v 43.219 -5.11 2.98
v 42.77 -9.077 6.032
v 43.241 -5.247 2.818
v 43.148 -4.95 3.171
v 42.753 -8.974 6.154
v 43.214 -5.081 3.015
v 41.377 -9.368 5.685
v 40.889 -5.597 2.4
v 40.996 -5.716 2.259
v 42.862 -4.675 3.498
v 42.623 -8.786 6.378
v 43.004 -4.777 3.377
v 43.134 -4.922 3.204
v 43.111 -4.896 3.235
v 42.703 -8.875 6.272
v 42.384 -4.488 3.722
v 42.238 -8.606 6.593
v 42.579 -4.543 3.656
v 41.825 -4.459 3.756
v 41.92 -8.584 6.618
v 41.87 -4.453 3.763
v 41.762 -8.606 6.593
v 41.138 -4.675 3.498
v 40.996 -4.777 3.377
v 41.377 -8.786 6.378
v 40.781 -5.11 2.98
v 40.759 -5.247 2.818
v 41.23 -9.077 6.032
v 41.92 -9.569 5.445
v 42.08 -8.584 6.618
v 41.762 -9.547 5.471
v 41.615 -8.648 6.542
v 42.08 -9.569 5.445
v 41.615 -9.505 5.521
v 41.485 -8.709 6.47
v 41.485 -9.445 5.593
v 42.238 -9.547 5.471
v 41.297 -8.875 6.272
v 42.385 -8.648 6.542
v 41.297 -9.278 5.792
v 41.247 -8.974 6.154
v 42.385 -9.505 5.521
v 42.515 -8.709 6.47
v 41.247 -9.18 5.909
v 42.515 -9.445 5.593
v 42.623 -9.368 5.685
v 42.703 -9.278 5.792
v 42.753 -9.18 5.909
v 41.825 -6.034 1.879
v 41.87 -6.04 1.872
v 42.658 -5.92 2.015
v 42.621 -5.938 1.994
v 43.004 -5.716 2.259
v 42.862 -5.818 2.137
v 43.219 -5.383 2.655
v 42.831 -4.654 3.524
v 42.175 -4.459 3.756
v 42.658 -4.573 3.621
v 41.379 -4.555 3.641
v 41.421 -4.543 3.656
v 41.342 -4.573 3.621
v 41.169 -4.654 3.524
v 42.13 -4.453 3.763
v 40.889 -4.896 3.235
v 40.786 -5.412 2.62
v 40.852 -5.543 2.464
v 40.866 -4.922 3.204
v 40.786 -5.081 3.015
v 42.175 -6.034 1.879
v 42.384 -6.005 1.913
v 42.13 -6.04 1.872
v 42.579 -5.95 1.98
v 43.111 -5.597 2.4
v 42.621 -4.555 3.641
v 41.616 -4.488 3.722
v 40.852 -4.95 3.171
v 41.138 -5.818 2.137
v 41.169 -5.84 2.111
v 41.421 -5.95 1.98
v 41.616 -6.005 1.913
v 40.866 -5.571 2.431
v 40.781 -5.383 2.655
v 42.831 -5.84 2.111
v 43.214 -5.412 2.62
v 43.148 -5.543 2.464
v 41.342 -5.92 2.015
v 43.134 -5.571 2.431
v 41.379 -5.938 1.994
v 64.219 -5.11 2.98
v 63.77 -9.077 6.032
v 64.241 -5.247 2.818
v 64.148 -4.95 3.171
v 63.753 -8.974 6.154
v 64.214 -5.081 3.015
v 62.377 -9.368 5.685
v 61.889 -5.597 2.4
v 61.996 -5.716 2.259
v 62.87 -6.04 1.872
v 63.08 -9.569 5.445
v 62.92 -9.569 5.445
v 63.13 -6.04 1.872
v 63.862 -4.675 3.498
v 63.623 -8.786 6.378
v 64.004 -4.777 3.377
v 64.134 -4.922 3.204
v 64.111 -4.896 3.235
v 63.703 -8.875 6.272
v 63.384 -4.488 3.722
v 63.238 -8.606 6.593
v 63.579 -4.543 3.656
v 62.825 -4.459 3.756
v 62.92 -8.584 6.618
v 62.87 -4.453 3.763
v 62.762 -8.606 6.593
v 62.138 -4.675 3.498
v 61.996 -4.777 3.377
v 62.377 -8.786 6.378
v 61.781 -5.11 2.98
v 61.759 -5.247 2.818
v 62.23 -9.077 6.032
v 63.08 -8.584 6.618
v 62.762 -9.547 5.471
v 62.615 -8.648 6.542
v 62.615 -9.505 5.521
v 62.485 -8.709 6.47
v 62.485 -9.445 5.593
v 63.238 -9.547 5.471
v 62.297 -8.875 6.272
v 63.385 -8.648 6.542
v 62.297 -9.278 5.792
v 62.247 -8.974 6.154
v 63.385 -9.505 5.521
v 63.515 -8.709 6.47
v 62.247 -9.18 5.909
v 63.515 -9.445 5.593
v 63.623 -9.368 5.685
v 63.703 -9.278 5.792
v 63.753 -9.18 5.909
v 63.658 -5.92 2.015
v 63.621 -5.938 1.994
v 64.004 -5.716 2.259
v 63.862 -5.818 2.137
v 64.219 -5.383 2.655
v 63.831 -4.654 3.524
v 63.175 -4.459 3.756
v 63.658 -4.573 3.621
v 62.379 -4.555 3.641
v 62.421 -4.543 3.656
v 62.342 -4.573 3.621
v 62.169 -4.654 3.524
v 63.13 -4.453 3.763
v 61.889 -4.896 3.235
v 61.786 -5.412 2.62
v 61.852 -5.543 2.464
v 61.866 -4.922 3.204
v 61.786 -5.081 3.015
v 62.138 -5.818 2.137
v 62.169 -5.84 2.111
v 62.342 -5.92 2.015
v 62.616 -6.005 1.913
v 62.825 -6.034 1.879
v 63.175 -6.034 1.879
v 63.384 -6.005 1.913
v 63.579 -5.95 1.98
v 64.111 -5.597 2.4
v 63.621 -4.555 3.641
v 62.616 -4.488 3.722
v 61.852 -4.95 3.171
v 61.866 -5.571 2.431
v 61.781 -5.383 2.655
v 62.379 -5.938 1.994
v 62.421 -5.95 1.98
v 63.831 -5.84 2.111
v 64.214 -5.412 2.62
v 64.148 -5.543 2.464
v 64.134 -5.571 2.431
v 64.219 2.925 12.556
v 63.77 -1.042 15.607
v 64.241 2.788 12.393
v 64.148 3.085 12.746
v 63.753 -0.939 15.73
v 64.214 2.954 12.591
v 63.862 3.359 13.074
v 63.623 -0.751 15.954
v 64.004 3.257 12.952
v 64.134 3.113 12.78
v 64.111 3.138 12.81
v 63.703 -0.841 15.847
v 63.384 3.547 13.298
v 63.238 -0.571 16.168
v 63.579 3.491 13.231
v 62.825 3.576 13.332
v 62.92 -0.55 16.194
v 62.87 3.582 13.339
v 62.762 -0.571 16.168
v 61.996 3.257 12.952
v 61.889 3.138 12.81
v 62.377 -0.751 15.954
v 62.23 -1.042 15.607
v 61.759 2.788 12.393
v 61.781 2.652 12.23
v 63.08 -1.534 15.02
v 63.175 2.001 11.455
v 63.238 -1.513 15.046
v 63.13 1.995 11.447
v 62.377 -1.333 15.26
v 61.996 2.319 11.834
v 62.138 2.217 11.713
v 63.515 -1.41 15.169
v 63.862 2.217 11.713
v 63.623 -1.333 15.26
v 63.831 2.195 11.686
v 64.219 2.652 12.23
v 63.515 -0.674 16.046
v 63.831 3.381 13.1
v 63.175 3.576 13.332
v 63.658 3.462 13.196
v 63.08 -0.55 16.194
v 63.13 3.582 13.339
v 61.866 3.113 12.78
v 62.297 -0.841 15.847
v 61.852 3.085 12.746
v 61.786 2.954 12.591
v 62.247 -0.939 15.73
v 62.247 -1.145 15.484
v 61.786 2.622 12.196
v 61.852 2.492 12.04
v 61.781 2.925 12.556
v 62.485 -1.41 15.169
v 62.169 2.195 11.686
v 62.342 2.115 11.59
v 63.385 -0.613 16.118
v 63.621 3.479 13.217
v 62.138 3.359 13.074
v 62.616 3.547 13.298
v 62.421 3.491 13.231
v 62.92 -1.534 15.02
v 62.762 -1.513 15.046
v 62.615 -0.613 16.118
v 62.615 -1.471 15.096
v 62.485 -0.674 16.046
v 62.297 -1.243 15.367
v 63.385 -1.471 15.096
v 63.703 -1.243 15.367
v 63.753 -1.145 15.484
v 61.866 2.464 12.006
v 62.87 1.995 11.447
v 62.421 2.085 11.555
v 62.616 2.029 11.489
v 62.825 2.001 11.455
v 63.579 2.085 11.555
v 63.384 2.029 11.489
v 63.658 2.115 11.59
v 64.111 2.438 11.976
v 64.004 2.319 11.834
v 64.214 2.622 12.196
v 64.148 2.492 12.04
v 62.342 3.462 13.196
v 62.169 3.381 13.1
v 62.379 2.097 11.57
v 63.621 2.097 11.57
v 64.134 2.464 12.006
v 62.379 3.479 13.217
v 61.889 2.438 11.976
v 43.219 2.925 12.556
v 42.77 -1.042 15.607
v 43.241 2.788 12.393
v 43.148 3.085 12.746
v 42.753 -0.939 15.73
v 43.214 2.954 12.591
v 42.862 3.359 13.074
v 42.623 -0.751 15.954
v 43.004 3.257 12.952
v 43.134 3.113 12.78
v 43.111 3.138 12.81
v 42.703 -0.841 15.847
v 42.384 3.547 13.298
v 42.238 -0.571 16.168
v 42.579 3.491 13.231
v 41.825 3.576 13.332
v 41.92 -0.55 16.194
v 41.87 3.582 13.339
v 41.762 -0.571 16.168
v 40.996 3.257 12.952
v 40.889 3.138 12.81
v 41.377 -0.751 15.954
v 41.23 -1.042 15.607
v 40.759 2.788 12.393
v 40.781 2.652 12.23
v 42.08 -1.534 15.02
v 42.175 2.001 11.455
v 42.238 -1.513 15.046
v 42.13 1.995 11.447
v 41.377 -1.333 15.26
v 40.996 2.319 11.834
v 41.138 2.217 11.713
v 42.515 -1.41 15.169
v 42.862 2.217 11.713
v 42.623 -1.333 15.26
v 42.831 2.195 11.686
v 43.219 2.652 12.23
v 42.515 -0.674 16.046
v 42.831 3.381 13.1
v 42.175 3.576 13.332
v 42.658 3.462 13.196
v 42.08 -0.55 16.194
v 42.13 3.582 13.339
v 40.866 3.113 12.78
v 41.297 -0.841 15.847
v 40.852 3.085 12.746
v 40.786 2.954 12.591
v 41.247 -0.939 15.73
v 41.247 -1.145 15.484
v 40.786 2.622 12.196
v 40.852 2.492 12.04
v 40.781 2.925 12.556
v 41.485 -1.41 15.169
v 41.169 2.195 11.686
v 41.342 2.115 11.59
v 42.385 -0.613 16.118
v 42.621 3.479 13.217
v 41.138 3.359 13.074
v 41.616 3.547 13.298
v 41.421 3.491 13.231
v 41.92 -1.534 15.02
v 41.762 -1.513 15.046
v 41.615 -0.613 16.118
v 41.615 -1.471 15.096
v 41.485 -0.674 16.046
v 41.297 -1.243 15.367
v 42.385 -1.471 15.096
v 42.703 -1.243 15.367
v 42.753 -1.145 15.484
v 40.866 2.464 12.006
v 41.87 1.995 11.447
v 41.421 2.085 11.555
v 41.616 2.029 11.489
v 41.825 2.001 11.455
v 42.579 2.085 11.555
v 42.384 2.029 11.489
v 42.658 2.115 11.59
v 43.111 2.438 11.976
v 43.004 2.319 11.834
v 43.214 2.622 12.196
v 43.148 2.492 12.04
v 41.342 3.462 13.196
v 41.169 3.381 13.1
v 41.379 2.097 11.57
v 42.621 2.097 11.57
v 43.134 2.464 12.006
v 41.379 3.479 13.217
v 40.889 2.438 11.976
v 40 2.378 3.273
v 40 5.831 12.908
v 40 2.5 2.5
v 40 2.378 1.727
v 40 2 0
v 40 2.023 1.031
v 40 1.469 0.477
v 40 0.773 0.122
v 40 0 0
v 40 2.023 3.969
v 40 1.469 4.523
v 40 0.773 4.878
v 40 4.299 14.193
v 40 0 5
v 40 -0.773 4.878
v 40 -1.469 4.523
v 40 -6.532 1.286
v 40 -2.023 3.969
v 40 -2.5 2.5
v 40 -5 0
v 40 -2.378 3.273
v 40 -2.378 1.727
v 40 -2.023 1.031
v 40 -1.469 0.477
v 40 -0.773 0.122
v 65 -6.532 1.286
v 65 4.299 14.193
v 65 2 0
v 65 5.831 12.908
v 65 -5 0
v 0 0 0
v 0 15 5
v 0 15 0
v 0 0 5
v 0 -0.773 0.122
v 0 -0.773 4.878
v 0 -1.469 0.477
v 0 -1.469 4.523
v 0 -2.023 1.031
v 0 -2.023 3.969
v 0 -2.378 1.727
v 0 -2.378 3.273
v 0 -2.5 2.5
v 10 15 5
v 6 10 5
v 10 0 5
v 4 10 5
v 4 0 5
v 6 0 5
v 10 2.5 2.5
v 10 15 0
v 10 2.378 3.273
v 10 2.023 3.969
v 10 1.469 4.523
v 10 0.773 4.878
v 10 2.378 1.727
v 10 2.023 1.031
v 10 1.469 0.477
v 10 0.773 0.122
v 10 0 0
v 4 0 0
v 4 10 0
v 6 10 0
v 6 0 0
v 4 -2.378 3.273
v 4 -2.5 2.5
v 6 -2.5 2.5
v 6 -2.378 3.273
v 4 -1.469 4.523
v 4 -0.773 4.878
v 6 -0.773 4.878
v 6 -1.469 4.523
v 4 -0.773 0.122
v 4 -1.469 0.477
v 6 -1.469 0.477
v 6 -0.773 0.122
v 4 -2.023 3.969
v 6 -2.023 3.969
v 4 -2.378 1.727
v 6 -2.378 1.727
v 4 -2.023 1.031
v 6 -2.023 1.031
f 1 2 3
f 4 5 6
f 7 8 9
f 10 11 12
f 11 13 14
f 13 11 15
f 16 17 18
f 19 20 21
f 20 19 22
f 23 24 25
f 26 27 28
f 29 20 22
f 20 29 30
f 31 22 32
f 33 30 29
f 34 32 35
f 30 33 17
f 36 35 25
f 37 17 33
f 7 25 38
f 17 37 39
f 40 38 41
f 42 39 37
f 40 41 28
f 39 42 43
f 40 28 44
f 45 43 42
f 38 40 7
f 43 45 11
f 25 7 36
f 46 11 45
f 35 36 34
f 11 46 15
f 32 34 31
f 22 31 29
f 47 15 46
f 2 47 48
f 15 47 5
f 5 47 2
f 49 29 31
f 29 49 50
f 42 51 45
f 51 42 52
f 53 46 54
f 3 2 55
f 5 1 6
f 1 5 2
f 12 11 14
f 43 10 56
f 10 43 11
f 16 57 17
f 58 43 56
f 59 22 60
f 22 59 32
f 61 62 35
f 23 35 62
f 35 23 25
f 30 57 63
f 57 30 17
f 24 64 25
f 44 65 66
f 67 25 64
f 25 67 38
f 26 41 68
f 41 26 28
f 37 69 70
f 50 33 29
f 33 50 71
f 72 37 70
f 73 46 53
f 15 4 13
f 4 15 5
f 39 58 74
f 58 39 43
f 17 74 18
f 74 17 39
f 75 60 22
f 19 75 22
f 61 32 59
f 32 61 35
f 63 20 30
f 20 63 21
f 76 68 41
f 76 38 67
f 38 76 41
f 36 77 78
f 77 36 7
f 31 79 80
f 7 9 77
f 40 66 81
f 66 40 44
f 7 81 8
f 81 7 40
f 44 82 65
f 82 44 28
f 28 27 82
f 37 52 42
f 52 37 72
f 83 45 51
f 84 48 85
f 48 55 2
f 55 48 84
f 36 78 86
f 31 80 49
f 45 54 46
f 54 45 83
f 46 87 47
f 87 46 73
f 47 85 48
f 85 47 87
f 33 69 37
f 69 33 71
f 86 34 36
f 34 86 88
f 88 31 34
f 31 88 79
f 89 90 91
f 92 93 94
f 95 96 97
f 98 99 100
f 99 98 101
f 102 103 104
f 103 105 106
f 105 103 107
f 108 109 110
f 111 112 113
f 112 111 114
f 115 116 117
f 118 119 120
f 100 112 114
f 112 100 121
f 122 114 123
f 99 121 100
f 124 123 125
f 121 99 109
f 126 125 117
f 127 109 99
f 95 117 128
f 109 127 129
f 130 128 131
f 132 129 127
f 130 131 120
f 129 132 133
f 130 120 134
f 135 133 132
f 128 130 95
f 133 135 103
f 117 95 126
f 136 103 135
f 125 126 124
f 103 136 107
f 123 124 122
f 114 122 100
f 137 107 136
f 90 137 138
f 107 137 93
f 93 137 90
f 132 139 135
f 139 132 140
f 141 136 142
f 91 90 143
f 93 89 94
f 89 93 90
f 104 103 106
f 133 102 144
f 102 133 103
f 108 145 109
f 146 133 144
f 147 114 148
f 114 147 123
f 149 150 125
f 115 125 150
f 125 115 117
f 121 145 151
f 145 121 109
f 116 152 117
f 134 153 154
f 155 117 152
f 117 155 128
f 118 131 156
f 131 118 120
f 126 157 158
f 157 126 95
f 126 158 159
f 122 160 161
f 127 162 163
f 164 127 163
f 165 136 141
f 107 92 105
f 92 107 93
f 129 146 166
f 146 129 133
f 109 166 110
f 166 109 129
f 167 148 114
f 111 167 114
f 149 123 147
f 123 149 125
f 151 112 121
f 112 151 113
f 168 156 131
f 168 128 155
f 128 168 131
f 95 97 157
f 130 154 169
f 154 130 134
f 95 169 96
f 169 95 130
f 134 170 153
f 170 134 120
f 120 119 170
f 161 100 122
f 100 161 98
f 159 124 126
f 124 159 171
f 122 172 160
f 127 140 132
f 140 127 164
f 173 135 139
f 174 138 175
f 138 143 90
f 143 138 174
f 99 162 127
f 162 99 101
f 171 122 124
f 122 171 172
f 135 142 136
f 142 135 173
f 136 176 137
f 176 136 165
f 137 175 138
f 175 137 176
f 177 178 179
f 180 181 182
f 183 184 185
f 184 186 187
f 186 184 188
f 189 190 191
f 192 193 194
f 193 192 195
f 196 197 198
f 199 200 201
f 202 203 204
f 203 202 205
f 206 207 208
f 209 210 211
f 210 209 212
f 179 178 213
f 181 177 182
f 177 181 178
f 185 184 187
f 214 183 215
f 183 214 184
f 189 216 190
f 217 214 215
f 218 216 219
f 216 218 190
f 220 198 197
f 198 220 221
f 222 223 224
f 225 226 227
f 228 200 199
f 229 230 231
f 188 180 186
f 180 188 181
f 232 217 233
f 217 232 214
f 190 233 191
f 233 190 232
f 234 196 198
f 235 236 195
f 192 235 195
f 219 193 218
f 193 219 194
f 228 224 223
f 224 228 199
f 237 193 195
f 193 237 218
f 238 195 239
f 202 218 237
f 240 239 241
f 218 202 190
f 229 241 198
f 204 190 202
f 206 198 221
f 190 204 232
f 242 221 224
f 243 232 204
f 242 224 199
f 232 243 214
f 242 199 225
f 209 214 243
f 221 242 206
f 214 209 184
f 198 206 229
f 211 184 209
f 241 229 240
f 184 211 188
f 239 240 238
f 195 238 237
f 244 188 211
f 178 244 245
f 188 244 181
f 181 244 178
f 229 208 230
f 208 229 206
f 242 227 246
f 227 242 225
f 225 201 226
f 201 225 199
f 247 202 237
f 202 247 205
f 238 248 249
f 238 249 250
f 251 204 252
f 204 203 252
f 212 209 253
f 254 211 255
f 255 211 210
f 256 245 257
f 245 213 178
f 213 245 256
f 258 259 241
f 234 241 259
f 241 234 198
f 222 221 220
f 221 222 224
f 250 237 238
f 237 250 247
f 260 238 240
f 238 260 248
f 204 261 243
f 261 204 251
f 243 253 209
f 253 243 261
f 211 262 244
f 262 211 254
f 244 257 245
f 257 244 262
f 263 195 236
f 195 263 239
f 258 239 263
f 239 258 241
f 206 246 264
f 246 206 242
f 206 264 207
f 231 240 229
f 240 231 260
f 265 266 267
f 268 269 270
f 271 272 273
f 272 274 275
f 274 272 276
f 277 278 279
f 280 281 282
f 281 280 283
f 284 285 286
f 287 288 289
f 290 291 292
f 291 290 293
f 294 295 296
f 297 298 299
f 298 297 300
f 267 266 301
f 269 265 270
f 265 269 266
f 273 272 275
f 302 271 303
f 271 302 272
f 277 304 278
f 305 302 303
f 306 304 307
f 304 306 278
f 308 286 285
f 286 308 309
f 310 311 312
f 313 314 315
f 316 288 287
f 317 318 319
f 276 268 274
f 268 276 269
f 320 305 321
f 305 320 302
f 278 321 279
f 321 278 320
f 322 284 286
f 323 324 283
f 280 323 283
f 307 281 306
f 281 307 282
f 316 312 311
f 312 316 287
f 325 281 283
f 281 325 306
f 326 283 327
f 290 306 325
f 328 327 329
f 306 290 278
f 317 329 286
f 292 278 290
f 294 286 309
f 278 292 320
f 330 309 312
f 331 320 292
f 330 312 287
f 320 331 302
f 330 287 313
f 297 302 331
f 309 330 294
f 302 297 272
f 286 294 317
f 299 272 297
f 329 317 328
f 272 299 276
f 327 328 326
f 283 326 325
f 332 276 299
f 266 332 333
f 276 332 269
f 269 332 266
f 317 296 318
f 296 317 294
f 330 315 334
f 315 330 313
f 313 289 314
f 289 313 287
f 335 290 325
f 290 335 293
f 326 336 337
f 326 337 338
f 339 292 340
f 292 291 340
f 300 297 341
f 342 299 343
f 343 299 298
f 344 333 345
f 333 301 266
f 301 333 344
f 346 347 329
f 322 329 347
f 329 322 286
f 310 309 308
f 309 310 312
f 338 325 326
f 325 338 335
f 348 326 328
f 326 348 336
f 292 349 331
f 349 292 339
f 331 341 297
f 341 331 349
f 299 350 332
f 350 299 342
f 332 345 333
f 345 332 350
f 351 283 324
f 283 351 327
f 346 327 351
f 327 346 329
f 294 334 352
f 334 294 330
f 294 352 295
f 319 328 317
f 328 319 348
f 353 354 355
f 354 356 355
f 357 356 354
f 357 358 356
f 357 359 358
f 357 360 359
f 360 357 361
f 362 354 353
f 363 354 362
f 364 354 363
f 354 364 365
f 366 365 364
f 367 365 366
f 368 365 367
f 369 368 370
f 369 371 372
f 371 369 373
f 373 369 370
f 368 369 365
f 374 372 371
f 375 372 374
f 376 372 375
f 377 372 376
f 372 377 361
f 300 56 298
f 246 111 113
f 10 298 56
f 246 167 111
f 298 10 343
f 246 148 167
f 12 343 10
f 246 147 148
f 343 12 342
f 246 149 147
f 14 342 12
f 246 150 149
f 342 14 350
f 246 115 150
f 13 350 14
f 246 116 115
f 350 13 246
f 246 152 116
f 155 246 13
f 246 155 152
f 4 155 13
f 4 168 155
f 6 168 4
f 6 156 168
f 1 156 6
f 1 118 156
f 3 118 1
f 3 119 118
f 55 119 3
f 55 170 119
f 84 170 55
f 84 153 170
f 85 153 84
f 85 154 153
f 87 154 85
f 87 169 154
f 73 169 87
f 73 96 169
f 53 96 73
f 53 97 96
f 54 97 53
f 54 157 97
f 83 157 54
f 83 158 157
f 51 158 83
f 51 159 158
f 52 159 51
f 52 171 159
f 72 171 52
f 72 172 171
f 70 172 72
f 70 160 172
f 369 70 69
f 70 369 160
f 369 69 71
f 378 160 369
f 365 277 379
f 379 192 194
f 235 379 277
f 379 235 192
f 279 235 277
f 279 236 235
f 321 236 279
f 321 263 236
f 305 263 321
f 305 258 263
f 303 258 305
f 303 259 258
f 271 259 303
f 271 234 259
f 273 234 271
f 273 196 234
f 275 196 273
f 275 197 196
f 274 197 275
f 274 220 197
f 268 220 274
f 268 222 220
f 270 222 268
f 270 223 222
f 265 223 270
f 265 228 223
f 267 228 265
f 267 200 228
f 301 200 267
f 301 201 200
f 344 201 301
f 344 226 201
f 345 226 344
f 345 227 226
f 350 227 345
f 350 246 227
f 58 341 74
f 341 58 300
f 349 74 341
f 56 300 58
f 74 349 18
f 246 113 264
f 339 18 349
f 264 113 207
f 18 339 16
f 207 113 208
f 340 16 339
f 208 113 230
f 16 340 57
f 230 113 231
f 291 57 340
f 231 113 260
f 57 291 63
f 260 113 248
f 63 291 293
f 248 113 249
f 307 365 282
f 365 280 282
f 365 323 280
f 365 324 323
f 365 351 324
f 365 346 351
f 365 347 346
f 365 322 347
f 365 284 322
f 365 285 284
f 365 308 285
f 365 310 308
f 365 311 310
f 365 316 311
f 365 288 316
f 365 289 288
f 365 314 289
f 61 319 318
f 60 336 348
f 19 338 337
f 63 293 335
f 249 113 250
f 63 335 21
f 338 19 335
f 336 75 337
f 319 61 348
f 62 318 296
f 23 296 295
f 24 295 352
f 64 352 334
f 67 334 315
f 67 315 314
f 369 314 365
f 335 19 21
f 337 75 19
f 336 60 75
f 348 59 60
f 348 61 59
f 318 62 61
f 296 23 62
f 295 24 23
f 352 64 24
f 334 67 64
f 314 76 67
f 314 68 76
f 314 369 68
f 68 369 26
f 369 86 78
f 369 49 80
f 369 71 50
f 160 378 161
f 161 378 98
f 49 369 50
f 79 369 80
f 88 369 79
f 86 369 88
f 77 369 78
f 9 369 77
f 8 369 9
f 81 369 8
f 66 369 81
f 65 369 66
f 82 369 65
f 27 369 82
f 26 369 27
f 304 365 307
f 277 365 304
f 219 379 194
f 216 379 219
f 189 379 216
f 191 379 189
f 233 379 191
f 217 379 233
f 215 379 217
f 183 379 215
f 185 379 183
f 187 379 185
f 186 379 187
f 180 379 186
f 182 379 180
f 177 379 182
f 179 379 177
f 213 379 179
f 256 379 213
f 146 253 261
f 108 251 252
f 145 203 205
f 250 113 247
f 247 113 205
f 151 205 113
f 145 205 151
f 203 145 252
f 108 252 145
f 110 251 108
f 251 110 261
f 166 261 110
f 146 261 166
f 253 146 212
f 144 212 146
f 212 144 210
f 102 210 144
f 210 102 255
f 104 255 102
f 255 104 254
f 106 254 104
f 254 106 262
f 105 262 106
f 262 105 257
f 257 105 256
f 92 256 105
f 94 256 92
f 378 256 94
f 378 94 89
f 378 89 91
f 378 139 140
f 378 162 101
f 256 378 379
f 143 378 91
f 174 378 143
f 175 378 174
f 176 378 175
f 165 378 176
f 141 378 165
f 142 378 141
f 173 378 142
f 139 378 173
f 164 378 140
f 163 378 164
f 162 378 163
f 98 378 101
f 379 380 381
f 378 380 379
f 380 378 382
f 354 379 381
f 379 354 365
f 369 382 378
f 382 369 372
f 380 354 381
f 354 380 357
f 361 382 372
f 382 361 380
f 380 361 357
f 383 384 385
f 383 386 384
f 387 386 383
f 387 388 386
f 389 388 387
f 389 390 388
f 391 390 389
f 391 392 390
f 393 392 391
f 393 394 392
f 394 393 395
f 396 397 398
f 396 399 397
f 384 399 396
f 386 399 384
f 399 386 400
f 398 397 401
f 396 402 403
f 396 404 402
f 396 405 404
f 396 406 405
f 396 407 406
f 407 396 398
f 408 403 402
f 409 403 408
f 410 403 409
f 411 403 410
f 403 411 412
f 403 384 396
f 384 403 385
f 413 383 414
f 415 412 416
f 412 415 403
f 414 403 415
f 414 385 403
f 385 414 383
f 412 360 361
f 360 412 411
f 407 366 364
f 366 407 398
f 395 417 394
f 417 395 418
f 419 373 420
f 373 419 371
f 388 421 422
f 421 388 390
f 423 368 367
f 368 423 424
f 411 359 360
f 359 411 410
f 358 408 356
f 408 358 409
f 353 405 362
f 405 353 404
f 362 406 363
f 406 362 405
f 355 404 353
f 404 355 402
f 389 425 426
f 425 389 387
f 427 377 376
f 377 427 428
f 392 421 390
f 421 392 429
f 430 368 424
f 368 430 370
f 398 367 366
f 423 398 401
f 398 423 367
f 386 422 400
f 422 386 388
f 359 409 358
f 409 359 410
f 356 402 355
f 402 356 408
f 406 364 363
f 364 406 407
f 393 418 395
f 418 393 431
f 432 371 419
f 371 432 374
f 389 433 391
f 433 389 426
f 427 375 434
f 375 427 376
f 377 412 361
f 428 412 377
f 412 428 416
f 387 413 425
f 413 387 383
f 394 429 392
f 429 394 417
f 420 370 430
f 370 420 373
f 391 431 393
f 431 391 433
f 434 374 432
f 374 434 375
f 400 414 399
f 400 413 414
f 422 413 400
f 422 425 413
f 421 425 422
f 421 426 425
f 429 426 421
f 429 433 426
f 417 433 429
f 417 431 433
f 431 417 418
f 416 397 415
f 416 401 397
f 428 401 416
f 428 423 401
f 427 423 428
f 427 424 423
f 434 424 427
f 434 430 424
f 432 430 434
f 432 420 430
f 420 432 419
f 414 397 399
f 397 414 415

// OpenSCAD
$fn=20;

/*
  Wanhao Duplicator i3 or Cocoon Create Plus Raspberry Pi Camera v2.1 mount (OpenSCAD)
  Author: Brian Khuu (2019)
  
  I use this in conjuction with sticking "Wanhao i3 Clip on Raspberry Pi Octoprint Case" by suzujoji  https://www.thingiverse.com/thing:1934900/files to my printer.
  
  This is a pressfit design. No support required. Just print and push the camera PCB to the mounting holes, then push the clip to the hole on the top of the Cocoon Create printer.

*/

/* [Camera]  */

// Camera Tilt Angle
picam_tilt_angle = 50;

// Offset Length
picam_mount_offset = 40;

module rpi_camera_model() {
  // ==============================================
  // Model of Raspberry Pi Camera v2.1
  // J.Beale 14-May-2016
  // ==============================================
  
  xs = 25.0;  // width of PCB
  ys = 23.85;  // height of PCB
  zs = 0.95;  // thickness of bare PCB, not including soldermask
  smt = 0.05;  // soldermask thickness (on each side)

  ID1 = 2.20; // ID of mounting through-holes
  OD1 = 4.7;  // silkscreen clearance around hole

  mhxc = 21.0;  // X center-to-center separation of mounting holes
  mhyc = 12.5; // Y center-to-center separation of mtng. holes
  mhox = 2.0;  // X mounting hole corner offset
  mhoy = 2.0;  // Y mounting hole corner offset
  hh = zs*2; // depth/height of mounting hole (subtractive cylinder)

  smx = 8.45;  // camera sensor module, base part
  smy = 8.45;
  smz = 2.3;
  smbod = 7.25;  // OD of lens holder barrel
  smbz = 1.7; // z-height of lens holder barrel
  smcod = 5.6;  // OD of lens cell 
  smcz = 0.6;  // protrusion of cell above holder barrel
  smcid = 1.55;  // optical aperture: opening for lens

  smfx = 8.9; // flex connector width
  smfy = 4.5; // flex connector 
  smfz = 1.52; // flex connector
  smfox = 9.45; // flex edge X offset
  smfoy = 2.6; // flex edge Y offset
  smfcx = 7.2; // flex cable width

  fcy = 5.8; // 15-way flex connector
  fcx = 21.0; // 15-way flex connector
  fcz = 3.77-1.15; // 15-way flex connector height  
  fcyoff = 0.3; // connector offset from PCB edge

  ffx = 16.05;  // 15-way flex cable width
  ffy = 30;  // length of flex cable stub
  ffz = 0.38;  // thickness of ff cable at stiffener
  ffoz = 1.1; // offset of ff cable below PCB

  KOx = 22.15; // keepout width- full
  KOxa = 15.1; // keepout width- inner block
  KOz = 1.35; // bottom side keepout z-height
  KOyo = 1.15; // keepout edge offset

  fn=40;  // facets on cylinder
  eps=0.03; // small number

  module pcb() {
  difference() {
   union() {
       translate([0,0,0]) color("green") 
          cube([xs,ys,smt]); // soldermask (bottom)
       translate([0,0,smt]) color("yellow") 
          cube([xs,ys,zs]); // natural PCB color
       translate([0,0,zs]) color("green") 
          cube([xs,ys,smt]); // soldermask (top)
   }
   translate([mhox,mhoy,zs-(smt+eps)]) {  // mask clearance: top
       cylinder(d=OD1,h=zs,$fn=fn);
       translate([mhxc,0,0]) cylinder(d=OD1,h=zs,$fn=fn);
       translate([mhxc,mhyc,0]) cylinder(d=OD1,h=zs,$fn=fn);
       translate([0,mhyc,0]) cylinder(d=OD1,h=zs,$fn=fn);
   }
   translate([mhox,mhoy,-eps]) {  // mask clearance: bottom
       cylinder(d=OD1,h=smt,$fn=fn);
       translate([mhxc,0,0]) cylinder(d=OD1,h=smt,$fn=fn);
       translate([mhxc,mhyc,0]) cylinder(d=OD1,h=smt,$fn=fn);
       translate([0,mhyc,0]) cylinder(d=OD1,h=smt,$fn=fn);
   }
   translate([mhox,mhoy,-zs*5]) {  // through holes
    cylinder(d=ID1,h=zs*10,$fn=fn);     
    translate([mhxc,0,0])  cylinder(d=ID1,h=zs*10,$fn=fn);
    translate([mhxc,mhyc,0])  cylinder(d=ID1,h=zs*10,$fn=fn);
    translate([0,mhyc,0])  cylinder(d=ID1,h=zs*10,$fn=fn);
    }
   }
  }
  
  module sensor() { // Camera sensor module
   color([.25,.25,.25]) translate([-smx/2, -smy/2, 0]) cube([smx,smy,smz]);
   color([.3,.3,.3]) cylinder(d=smbod, h=smbz + smz, $fn=fn);
   difference() {
    color([.2,.2,.2]) cylinder(d=smcod, h=smbz + smz + smcz, $fn=fn);
    translate([0,0,smcz]) cylinder(d=smcid, h=smbz + smz + smcz, $fn=fn);
   }
  }

  module flex() { // micro-flex attached to sensor
   color([0.2,0.20,0.18]) cube([smfx,smfy,smfz]); // u-flex connector top
   translate([0,smfy,0]) color([0.33,0.33,0.23]) cube([smfcx,smfy,smfz-.1]);
  }

  module fcon() {  // micro-flex connector to PCB
      color([0.6,0.20,0.18]) cube([fcx,fcy,fcz]);
  }

  module ff15() {  // 15-conductor flat flex cable
      color([.7,.7,.7]) cube([ffx,ffy,ffz]);
  }
  
  translate([xs/2 ,mhyc+mhoy,zs]) sensor();
  translate([smfox,smfoy,zs]) flex(); // micro-flex on sensor
  pcb();
}

module cam_holder(thickness, rotate, hull_base)
{
  fn=30;
  pressfit_h=7;
  
  // Simulated Camera
  %rotate([rotate,0,0])translate([0 ,0,thickness+2]) rpi_camera_model();
 
  xs = 25.0;  // width of PCB
  ys = 23.85-7;  // height of PCB
  zs = 0.95;  // thickness of bare PCB, not including soldermask

  mhxc = 21.0;  // X center-to-center separation of mounting holes
  mhyc = 12.5; // Y center-to-center separation of mtng. holes
  mhox = 2.0;  // X mounting hole corner offset
  mhoy = 2.0;  // Y mounting hole corner offset
  ID1 = 2.20; // ID of mounting through-holes
  
  if(hull_base>0)
  hull()
  {
    rotate([rotate,0,0])
      cube([xs,ys,0.1]);
    cube([xs,hull_base,0.1]);
  }

  rotate([rotate,0,0])
  {
   cube([xs,ys,thickness]);
   translate([mhox,mhoy,0]) 
   {  // through holes
      translate([0,0,0])        cylinder(d1=ID1*1.3,d2=ID1*0.7,h=pressfit_h,$fn=fn);     
      translate([mhxc,0,0])     cylinder(d1=ID1*1.3,d2=ID1*0.7,h=pressfit_h,$fn=fn);
      translate([mhxc,mhyc,0])  cylinder(d1=ID1*1.3,d2=ID1*0.7,h=pressfit_h,$fn=fn);
      translate([0,mhyc,0])     cylinder(d1=ID1*1.3,d2=ID1*0.7,h=pressfit_h,$fn=fn);
   }
 }
}

difference()
{
  union()
  {
    cube([10,15,5]);

    translate([0,0,5/2])
    rotate([0,90,0])
    cylinder(r=5/2,h=picam_mount_offset);
    
    translate([picam_mount_offset,-5,0])
    cam_holder(2, picam_tilt_angle, 7);
  }
   
  translate([4,-5,0])
    cube([2,15,6]);
}
